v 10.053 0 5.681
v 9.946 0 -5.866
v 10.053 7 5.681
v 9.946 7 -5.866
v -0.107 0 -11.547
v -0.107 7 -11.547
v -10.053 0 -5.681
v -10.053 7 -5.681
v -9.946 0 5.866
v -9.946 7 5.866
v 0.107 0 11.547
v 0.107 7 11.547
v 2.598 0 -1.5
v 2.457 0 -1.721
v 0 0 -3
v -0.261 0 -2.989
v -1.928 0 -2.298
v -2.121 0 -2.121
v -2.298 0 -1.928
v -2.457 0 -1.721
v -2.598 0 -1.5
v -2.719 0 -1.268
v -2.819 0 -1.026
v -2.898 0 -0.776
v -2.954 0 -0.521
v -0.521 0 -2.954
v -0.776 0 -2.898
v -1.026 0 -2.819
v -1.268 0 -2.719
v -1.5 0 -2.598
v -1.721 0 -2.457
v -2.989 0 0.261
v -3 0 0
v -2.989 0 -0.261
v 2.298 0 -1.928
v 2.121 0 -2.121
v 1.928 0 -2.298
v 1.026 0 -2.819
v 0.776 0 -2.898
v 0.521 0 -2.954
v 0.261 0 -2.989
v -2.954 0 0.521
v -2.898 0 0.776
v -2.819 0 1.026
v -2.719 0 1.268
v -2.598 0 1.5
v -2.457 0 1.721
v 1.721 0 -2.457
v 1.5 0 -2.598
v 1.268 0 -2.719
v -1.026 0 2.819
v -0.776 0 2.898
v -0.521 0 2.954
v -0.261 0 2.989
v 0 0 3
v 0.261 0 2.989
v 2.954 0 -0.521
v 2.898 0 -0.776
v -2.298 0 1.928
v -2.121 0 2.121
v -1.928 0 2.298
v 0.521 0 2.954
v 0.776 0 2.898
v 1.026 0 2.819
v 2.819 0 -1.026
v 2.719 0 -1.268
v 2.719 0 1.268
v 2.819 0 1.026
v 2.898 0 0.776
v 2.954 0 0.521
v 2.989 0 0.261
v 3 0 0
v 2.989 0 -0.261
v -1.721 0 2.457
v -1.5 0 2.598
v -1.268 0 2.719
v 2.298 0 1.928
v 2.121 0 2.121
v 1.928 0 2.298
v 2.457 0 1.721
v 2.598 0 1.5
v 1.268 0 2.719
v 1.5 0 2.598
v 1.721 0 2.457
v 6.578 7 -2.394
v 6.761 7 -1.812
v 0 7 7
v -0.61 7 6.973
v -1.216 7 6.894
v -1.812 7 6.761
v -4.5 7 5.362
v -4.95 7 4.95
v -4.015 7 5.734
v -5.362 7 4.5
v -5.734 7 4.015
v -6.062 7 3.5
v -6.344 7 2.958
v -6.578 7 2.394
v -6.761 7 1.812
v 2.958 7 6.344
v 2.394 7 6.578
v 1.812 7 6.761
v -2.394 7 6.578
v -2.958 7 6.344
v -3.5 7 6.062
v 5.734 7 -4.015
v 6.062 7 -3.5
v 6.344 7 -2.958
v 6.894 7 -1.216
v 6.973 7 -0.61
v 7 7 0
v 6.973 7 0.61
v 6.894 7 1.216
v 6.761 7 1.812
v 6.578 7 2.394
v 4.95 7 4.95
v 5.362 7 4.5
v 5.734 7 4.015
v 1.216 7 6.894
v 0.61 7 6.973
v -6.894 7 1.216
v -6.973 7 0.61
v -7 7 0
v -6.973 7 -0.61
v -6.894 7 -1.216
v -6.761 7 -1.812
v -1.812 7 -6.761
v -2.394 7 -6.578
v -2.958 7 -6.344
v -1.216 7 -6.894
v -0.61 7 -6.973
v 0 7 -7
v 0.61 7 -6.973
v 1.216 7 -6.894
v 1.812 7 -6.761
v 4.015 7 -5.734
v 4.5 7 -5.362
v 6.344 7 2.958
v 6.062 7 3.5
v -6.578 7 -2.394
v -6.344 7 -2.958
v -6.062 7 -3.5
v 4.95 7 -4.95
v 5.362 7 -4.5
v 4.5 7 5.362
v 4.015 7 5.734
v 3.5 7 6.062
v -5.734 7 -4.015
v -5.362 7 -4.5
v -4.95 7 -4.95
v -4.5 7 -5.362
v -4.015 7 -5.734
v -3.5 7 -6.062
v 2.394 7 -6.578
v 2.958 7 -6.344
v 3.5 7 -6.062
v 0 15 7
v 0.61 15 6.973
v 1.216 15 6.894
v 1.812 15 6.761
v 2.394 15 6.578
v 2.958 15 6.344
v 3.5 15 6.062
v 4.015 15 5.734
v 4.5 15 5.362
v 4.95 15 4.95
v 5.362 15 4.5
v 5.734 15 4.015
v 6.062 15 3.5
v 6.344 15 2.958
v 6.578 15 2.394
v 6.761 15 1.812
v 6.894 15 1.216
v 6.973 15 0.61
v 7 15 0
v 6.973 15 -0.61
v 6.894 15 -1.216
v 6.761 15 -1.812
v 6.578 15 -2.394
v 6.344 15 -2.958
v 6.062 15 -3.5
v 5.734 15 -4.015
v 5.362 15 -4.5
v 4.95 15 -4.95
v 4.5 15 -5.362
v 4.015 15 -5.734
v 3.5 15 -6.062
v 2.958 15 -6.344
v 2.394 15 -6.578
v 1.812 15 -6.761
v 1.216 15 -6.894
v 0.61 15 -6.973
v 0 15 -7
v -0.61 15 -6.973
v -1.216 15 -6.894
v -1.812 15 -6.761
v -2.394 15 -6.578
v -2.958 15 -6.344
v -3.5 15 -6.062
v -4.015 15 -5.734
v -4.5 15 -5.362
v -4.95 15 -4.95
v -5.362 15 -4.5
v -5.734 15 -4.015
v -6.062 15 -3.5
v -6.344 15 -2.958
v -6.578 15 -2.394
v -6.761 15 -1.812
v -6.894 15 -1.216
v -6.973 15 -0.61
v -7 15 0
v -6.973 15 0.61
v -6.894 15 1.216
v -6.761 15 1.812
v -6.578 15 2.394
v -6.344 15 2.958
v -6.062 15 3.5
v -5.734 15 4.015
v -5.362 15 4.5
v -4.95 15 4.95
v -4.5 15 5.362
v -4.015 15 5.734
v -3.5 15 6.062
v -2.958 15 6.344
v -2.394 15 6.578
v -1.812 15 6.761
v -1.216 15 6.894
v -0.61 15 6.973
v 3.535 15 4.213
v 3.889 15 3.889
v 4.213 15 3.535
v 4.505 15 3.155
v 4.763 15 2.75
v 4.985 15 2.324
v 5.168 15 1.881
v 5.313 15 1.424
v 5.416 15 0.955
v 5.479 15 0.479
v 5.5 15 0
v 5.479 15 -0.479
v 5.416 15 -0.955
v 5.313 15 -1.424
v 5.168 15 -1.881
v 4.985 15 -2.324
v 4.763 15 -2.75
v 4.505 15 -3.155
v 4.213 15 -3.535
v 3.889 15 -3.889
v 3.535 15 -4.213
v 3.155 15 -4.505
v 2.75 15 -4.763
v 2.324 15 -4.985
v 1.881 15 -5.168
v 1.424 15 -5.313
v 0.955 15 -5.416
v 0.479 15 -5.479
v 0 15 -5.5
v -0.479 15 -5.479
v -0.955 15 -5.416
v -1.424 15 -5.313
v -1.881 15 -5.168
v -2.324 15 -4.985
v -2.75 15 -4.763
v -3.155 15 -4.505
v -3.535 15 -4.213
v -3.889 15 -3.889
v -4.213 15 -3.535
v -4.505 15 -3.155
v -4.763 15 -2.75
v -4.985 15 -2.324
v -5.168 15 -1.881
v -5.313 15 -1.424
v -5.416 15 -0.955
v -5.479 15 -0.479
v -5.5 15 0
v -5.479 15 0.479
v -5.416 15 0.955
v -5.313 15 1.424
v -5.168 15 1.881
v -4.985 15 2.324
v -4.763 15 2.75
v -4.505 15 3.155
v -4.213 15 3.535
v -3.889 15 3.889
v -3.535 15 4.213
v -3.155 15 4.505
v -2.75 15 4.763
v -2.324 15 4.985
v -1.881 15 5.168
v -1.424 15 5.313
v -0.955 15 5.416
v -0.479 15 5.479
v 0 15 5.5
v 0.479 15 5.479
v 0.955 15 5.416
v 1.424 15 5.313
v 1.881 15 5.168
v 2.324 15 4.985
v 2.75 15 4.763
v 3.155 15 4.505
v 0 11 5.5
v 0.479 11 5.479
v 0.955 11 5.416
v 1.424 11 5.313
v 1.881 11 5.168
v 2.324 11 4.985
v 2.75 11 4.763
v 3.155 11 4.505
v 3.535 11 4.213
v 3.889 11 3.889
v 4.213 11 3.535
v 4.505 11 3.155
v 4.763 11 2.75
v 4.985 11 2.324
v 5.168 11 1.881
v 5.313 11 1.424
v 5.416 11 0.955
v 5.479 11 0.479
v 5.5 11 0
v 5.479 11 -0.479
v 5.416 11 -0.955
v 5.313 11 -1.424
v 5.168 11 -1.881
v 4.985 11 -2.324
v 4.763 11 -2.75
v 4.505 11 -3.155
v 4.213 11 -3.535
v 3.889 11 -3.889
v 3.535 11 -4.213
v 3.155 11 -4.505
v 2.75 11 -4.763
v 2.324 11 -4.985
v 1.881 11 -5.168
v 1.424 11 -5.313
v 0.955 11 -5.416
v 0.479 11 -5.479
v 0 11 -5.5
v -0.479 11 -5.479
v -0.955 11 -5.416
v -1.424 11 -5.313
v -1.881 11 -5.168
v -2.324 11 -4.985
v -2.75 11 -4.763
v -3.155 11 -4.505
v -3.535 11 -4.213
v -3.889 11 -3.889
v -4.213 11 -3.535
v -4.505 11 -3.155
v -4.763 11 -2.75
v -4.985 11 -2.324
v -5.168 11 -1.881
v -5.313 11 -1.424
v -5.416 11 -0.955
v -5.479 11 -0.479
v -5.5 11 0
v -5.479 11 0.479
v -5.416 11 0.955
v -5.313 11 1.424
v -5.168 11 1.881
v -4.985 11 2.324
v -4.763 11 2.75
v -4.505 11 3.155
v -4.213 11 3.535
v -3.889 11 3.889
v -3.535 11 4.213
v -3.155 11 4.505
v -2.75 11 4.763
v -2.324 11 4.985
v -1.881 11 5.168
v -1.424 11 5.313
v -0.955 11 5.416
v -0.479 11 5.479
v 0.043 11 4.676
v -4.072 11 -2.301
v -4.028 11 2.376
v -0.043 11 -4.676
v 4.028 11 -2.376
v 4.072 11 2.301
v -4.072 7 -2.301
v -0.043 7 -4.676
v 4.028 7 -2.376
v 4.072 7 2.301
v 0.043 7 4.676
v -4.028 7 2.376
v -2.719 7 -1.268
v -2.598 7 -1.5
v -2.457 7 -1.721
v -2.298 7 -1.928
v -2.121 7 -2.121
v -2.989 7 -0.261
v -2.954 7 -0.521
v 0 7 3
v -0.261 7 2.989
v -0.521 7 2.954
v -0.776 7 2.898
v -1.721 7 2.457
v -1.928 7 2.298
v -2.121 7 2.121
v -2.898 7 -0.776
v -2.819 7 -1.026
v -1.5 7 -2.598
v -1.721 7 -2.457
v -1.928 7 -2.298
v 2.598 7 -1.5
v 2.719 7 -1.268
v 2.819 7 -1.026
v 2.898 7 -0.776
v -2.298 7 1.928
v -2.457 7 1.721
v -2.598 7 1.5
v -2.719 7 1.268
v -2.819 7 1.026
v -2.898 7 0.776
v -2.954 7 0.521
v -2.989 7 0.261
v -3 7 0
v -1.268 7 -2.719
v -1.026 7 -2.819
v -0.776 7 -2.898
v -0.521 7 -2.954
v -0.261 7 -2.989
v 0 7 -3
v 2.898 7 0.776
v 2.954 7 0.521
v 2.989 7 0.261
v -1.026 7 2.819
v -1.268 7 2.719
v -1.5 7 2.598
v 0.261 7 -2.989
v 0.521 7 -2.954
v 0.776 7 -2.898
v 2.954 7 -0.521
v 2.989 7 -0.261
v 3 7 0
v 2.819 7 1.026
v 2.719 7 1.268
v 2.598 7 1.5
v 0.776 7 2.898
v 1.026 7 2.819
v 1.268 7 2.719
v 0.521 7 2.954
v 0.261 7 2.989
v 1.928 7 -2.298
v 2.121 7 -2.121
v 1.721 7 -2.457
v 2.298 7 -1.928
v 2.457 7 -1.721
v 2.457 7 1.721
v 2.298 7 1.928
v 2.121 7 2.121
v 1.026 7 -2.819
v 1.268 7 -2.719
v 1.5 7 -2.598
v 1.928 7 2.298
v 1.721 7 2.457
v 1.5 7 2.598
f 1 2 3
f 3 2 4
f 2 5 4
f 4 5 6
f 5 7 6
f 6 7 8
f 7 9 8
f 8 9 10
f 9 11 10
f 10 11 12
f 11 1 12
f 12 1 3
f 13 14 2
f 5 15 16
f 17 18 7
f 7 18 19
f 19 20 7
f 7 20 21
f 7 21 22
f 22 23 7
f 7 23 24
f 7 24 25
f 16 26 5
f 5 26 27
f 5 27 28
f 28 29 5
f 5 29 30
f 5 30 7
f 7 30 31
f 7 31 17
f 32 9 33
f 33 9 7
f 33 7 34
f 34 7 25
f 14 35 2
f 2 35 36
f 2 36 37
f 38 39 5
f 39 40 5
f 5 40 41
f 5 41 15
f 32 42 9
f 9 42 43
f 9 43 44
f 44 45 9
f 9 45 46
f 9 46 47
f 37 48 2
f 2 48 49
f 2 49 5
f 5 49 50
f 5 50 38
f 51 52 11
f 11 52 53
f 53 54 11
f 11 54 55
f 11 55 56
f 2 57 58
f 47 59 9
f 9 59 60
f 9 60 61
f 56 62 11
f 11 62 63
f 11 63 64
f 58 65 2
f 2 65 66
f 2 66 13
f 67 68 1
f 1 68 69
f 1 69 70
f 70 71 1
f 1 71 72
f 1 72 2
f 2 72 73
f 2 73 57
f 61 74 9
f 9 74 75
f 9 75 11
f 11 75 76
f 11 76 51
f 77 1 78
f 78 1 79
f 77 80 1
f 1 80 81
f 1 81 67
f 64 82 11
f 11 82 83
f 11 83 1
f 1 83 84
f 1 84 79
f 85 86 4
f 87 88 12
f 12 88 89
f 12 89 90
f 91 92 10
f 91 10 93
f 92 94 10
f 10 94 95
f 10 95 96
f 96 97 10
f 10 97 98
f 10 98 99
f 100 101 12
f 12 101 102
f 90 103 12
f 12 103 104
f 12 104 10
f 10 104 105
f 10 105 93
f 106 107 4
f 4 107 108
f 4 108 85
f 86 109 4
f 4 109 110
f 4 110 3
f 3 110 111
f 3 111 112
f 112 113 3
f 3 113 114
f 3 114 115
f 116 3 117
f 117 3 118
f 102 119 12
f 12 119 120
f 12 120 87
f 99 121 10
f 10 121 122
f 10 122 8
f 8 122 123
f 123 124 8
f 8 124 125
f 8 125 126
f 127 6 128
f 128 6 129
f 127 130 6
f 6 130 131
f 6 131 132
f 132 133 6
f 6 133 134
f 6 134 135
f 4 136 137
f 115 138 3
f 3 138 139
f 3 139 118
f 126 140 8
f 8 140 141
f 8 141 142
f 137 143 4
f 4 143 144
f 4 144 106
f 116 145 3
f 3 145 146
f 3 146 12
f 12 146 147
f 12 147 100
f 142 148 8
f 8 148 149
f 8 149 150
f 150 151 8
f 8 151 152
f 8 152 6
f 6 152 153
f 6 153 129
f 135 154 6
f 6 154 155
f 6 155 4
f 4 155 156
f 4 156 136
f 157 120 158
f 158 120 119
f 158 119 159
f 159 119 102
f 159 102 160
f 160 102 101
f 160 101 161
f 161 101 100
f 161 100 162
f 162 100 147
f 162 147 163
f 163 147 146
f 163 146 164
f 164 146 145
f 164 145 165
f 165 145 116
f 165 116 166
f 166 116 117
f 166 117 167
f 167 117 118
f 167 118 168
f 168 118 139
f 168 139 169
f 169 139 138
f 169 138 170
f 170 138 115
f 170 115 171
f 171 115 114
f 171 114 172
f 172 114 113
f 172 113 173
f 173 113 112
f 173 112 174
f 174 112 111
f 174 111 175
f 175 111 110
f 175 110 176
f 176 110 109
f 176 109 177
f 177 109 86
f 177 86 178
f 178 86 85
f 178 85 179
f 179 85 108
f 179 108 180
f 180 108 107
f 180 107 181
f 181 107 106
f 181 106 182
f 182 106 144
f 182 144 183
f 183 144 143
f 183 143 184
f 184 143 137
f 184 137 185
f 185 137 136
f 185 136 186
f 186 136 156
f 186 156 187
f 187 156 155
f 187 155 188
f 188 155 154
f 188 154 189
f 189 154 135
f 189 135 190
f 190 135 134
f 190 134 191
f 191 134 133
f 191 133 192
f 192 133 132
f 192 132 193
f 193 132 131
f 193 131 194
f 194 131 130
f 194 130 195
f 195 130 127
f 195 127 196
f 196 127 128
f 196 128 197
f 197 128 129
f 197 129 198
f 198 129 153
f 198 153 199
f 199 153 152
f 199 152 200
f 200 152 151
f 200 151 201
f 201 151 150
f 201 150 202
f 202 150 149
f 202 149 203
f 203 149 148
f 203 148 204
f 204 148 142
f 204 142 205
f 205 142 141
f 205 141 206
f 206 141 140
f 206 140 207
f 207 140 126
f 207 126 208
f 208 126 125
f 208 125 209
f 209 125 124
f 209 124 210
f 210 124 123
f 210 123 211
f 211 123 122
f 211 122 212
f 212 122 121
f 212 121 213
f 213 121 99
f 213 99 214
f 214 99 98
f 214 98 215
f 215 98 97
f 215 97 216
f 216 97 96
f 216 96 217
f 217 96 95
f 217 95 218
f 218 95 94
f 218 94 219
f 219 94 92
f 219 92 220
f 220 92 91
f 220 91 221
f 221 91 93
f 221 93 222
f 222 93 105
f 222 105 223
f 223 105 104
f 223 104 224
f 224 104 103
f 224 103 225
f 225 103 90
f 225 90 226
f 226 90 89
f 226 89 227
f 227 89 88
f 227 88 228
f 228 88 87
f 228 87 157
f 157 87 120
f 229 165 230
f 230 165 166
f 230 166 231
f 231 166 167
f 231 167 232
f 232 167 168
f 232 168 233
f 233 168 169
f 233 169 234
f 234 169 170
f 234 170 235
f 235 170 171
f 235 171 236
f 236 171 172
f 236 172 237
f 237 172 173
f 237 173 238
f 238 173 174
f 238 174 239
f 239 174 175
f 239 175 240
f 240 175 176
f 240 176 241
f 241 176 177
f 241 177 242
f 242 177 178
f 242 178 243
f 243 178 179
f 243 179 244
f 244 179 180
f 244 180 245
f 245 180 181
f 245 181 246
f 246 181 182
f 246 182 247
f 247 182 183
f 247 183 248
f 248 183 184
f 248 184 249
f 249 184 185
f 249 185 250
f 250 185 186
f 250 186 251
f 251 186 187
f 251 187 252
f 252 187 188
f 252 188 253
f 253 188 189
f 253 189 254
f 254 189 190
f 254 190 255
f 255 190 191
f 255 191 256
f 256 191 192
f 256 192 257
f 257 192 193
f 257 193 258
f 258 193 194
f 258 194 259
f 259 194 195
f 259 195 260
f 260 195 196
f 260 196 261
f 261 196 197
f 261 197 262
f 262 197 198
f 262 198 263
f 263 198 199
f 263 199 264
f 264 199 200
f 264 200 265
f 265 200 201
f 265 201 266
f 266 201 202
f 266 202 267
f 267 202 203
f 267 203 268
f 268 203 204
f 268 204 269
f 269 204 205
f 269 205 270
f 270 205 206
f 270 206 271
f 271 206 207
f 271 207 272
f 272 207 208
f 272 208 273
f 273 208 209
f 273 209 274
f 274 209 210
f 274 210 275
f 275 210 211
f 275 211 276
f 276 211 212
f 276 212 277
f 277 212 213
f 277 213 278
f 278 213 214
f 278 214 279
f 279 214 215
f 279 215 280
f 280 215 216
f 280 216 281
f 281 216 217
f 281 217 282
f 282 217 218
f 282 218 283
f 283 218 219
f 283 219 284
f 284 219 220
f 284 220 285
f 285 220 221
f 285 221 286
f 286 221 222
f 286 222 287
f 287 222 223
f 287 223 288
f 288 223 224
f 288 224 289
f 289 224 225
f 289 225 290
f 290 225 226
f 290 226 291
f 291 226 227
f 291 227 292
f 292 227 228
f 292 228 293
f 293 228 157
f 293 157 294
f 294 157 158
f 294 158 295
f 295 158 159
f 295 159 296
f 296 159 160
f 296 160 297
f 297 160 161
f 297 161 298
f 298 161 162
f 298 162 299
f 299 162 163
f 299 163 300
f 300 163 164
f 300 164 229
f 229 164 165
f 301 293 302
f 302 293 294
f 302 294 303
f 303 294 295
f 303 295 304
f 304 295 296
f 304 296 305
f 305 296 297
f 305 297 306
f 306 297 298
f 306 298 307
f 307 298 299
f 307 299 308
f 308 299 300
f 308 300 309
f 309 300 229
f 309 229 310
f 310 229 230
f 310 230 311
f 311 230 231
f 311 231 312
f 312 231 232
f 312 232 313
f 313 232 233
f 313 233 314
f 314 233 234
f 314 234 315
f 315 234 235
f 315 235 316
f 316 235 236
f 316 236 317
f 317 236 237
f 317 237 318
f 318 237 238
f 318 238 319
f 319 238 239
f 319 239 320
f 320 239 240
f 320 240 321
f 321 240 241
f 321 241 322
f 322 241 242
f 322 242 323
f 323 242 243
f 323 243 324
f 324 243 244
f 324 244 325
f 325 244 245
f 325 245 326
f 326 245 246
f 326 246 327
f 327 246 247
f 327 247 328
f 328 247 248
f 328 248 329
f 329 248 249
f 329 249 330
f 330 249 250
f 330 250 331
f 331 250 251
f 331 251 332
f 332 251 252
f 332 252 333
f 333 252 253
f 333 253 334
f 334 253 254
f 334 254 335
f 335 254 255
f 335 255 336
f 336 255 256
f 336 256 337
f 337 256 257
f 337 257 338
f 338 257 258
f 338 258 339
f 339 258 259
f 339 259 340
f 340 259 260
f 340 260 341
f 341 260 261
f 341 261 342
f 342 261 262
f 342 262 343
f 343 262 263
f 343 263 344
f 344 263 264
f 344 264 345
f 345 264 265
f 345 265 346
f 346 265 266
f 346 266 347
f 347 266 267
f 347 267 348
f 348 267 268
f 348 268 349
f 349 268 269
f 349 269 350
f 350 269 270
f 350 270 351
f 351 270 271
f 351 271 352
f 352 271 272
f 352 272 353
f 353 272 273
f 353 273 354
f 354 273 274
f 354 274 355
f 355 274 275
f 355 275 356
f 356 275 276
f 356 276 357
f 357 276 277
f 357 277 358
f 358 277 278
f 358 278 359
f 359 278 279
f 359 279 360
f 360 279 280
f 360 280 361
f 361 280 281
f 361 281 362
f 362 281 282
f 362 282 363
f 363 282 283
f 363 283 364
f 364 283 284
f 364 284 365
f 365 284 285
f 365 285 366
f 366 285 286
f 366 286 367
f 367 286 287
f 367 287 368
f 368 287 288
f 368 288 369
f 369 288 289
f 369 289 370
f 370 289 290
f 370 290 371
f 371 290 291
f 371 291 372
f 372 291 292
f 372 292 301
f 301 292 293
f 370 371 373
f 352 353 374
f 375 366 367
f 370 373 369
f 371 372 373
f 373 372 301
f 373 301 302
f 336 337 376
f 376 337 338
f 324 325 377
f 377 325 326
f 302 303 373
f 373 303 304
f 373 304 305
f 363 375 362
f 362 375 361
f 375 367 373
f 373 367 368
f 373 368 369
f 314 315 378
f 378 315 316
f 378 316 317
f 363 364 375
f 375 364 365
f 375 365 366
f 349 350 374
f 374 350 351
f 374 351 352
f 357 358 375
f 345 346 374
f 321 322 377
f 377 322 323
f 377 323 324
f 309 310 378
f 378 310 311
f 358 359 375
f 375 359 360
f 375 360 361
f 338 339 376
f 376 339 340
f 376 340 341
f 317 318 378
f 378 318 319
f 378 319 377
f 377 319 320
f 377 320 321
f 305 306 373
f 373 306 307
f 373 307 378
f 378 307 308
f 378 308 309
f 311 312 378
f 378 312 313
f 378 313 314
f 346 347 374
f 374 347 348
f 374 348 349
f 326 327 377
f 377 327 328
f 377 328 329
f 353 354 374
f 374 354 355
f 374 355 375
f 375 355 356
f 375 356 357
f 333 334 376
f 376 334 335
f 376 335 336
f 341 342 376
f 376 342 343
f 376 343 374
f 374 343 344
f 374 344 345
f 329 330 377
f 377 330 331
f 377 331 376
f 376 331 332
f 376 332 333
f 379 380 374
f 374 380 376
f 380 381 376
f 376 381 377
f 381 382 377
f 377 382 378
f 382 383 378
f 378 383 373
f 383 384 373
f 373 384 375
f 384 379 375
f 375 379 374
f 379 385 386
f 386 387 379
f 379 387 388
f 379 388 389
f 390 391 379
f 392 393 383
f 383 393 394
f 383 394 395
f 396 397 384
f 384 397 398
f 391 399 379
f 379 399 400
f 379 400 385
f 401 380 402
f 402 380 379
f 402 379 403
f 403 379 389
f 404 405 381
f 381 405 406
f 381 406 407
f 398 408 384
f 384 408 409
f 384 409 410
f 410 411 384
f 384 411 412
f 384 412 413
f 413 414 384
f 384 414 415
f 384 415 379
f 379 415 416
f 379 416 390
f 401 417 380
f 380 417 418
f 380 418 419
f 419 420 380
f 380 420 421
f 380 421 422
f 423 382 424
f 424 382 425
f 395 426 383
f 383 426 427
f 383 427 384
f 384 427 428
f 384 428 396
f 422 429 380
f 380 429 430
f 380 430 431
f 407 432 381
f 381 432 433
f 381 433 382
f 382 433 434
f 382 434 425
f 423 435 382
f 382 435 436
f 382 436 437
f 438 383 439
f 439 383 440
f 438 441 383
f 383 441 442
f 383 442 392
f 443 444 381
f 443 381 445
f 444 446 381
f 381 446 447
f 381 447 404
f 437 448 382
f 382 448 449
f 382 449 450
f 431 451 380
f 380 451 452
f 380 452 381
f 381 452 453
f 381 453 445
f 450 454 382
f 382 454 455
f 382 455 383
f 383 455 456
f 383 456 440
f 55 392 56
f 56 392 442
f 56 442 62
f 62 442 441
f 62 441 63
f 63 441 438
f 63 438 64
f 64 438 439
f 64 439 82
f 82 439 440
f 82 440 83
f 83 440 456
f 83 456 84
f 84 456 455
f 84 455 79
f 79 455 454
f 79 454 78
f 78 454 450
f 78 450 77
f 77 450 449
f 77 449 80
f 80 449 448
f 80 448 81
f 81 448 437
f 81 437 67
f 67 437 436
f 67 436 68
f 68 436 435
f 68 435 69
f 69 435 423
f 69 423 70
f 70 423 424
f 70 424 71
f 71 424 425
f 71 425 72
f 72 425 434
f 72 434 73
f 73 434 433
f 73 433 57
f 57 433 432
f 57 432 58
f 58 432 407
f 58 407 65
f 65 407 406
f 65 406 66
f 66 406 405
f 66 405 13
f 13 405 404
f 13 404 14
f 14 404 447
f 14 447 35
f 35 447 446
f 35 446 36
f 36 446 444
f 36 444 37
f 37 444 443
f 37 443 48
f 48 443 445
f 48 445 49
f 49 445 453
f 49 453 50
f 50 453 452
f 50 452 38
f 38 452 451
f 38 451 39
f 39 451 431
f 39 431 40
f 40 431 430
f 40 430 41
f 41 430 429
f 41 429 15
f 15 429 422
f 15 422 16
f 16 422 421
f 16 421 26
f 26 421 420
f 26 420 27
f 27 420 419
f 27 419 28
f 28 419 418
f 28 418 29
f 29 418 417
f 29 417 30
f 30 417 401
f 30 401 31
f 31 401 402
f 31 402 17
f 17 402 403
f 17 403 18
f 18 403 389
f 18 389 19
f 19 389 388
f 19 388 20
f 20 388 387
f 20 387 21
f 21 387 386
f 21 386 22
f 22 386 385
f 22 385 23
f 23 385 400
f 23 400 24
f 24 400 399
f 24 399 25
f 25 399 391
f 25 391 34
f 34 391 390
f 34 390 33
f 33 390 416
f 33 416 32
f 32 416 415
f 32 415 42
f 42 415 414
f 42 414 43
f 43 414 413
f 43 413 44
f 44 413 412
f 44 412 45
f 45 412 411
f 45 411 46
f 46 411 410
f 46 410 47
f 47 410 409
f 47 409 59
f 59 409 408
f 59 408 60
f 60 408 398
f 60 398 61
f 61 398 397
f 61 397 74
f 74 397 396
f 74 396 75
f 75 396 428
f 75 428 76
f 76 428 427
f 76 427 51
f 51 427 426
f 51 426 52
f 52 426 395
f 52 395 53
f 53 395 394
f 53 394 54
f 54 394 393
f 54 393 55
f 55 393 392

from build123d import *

# Parameters (mm, degrees)
BOSS_EXTRUDE1_DEPTH = 15
SKETCH3_OUTSIDE_W   = 28.926
SKETCH3_OUTSIDE_H   = 31.914
SKETCH3_OUTSIDE_R   = 7
CUT_EXTRUDE1_DEPTH  = 8
SKETCH4_R           = 5.5
CUT_EXTRUDE2_DEPTH  = 4
CUT_EXTRUDE3_DEPTH  = 4
SKETCH6_R           = 3
CUT_EXTRUDE4_DEPTH  = 8


with BuildPart() as part:
    # Sketch1 → Boss-Extrude1 (new body)
    with BuildSketch(Plane(origin=(0, 0, 0), x_dir=(1, 0, 0), z_dir=(0, 1, 0))):
        Polygon((9.946043617, 5.865965368), (-0.107053218, 11.546509124), (-10.053096835, 5.680543756), (-9.946043617, -5.865965368), (0.107053218, -11.546509124), (10.053096835, -5.680543756), align=None)
    extrude(amount=BOSS_EXTRUDE1_DEPTH)

    # Sketch3 outside → Cut-Extrude1 (cut)
    with BuildSketch(Plane(origin=(0, 15, 0), x_dir=(1, 0, 0), z_dir=(0, 1, 0))):
        Rectangle(SKETCH3_OUTSIDE_W, SKETCH3_OUTSIDE_H)
        Circle(SKETCH3_OUTSIDE_R, mode=Mode.SUBTRACT)
    extrude(amount=-CUT_EXTRUDE1_DEPTH, mode=Mode.SUBTRACT)

    # Sketch4 → Cut-Extrude2 (cut)
    with BuildSketch(Plane(origin=(0, 15, 0), x_dir=(1, 0, 0), z_dir=(0, 1, 0))):
        Circle(SKETCH4_R)
    extrude(amount=-CUT_EXTRUDE2_DEPTH, mode=Mode.SUBTRACT)

    # Sketch5 → Cut-Extrude3 (cut)
    with BuildSketch(Plane(origin=(0, 11, 0), x_dir=(1, 0, 0), z_dir=(0, 1, 0))):
        Polygon((-4.071504218, 2.300620221), (-4.028147665, -2.375715974), (0.043356553, -4.676336195), (4.071504218, -2.300620221), (4.028147665, 2.375715974), (-0.043356553, 4.676336195), align=None)
    extrude(amount=-CUT_EXTRUDE3_DEPTH, mode=Mode.SUBTRACT)

    # Sketch6 → Cut-Extrude4 (cut, through all)
    with BuildSketch(Plane(origin=(0, 7, 0), x_dir=(1, 0, 0), z_dir=(0, 1, 0))):
        Circle(SKETCH6_R)
    extrude(amount=-CUT_EXTRUDE4_DEPTH, mode=Mode.SUBTRACT)


solid = part.part
